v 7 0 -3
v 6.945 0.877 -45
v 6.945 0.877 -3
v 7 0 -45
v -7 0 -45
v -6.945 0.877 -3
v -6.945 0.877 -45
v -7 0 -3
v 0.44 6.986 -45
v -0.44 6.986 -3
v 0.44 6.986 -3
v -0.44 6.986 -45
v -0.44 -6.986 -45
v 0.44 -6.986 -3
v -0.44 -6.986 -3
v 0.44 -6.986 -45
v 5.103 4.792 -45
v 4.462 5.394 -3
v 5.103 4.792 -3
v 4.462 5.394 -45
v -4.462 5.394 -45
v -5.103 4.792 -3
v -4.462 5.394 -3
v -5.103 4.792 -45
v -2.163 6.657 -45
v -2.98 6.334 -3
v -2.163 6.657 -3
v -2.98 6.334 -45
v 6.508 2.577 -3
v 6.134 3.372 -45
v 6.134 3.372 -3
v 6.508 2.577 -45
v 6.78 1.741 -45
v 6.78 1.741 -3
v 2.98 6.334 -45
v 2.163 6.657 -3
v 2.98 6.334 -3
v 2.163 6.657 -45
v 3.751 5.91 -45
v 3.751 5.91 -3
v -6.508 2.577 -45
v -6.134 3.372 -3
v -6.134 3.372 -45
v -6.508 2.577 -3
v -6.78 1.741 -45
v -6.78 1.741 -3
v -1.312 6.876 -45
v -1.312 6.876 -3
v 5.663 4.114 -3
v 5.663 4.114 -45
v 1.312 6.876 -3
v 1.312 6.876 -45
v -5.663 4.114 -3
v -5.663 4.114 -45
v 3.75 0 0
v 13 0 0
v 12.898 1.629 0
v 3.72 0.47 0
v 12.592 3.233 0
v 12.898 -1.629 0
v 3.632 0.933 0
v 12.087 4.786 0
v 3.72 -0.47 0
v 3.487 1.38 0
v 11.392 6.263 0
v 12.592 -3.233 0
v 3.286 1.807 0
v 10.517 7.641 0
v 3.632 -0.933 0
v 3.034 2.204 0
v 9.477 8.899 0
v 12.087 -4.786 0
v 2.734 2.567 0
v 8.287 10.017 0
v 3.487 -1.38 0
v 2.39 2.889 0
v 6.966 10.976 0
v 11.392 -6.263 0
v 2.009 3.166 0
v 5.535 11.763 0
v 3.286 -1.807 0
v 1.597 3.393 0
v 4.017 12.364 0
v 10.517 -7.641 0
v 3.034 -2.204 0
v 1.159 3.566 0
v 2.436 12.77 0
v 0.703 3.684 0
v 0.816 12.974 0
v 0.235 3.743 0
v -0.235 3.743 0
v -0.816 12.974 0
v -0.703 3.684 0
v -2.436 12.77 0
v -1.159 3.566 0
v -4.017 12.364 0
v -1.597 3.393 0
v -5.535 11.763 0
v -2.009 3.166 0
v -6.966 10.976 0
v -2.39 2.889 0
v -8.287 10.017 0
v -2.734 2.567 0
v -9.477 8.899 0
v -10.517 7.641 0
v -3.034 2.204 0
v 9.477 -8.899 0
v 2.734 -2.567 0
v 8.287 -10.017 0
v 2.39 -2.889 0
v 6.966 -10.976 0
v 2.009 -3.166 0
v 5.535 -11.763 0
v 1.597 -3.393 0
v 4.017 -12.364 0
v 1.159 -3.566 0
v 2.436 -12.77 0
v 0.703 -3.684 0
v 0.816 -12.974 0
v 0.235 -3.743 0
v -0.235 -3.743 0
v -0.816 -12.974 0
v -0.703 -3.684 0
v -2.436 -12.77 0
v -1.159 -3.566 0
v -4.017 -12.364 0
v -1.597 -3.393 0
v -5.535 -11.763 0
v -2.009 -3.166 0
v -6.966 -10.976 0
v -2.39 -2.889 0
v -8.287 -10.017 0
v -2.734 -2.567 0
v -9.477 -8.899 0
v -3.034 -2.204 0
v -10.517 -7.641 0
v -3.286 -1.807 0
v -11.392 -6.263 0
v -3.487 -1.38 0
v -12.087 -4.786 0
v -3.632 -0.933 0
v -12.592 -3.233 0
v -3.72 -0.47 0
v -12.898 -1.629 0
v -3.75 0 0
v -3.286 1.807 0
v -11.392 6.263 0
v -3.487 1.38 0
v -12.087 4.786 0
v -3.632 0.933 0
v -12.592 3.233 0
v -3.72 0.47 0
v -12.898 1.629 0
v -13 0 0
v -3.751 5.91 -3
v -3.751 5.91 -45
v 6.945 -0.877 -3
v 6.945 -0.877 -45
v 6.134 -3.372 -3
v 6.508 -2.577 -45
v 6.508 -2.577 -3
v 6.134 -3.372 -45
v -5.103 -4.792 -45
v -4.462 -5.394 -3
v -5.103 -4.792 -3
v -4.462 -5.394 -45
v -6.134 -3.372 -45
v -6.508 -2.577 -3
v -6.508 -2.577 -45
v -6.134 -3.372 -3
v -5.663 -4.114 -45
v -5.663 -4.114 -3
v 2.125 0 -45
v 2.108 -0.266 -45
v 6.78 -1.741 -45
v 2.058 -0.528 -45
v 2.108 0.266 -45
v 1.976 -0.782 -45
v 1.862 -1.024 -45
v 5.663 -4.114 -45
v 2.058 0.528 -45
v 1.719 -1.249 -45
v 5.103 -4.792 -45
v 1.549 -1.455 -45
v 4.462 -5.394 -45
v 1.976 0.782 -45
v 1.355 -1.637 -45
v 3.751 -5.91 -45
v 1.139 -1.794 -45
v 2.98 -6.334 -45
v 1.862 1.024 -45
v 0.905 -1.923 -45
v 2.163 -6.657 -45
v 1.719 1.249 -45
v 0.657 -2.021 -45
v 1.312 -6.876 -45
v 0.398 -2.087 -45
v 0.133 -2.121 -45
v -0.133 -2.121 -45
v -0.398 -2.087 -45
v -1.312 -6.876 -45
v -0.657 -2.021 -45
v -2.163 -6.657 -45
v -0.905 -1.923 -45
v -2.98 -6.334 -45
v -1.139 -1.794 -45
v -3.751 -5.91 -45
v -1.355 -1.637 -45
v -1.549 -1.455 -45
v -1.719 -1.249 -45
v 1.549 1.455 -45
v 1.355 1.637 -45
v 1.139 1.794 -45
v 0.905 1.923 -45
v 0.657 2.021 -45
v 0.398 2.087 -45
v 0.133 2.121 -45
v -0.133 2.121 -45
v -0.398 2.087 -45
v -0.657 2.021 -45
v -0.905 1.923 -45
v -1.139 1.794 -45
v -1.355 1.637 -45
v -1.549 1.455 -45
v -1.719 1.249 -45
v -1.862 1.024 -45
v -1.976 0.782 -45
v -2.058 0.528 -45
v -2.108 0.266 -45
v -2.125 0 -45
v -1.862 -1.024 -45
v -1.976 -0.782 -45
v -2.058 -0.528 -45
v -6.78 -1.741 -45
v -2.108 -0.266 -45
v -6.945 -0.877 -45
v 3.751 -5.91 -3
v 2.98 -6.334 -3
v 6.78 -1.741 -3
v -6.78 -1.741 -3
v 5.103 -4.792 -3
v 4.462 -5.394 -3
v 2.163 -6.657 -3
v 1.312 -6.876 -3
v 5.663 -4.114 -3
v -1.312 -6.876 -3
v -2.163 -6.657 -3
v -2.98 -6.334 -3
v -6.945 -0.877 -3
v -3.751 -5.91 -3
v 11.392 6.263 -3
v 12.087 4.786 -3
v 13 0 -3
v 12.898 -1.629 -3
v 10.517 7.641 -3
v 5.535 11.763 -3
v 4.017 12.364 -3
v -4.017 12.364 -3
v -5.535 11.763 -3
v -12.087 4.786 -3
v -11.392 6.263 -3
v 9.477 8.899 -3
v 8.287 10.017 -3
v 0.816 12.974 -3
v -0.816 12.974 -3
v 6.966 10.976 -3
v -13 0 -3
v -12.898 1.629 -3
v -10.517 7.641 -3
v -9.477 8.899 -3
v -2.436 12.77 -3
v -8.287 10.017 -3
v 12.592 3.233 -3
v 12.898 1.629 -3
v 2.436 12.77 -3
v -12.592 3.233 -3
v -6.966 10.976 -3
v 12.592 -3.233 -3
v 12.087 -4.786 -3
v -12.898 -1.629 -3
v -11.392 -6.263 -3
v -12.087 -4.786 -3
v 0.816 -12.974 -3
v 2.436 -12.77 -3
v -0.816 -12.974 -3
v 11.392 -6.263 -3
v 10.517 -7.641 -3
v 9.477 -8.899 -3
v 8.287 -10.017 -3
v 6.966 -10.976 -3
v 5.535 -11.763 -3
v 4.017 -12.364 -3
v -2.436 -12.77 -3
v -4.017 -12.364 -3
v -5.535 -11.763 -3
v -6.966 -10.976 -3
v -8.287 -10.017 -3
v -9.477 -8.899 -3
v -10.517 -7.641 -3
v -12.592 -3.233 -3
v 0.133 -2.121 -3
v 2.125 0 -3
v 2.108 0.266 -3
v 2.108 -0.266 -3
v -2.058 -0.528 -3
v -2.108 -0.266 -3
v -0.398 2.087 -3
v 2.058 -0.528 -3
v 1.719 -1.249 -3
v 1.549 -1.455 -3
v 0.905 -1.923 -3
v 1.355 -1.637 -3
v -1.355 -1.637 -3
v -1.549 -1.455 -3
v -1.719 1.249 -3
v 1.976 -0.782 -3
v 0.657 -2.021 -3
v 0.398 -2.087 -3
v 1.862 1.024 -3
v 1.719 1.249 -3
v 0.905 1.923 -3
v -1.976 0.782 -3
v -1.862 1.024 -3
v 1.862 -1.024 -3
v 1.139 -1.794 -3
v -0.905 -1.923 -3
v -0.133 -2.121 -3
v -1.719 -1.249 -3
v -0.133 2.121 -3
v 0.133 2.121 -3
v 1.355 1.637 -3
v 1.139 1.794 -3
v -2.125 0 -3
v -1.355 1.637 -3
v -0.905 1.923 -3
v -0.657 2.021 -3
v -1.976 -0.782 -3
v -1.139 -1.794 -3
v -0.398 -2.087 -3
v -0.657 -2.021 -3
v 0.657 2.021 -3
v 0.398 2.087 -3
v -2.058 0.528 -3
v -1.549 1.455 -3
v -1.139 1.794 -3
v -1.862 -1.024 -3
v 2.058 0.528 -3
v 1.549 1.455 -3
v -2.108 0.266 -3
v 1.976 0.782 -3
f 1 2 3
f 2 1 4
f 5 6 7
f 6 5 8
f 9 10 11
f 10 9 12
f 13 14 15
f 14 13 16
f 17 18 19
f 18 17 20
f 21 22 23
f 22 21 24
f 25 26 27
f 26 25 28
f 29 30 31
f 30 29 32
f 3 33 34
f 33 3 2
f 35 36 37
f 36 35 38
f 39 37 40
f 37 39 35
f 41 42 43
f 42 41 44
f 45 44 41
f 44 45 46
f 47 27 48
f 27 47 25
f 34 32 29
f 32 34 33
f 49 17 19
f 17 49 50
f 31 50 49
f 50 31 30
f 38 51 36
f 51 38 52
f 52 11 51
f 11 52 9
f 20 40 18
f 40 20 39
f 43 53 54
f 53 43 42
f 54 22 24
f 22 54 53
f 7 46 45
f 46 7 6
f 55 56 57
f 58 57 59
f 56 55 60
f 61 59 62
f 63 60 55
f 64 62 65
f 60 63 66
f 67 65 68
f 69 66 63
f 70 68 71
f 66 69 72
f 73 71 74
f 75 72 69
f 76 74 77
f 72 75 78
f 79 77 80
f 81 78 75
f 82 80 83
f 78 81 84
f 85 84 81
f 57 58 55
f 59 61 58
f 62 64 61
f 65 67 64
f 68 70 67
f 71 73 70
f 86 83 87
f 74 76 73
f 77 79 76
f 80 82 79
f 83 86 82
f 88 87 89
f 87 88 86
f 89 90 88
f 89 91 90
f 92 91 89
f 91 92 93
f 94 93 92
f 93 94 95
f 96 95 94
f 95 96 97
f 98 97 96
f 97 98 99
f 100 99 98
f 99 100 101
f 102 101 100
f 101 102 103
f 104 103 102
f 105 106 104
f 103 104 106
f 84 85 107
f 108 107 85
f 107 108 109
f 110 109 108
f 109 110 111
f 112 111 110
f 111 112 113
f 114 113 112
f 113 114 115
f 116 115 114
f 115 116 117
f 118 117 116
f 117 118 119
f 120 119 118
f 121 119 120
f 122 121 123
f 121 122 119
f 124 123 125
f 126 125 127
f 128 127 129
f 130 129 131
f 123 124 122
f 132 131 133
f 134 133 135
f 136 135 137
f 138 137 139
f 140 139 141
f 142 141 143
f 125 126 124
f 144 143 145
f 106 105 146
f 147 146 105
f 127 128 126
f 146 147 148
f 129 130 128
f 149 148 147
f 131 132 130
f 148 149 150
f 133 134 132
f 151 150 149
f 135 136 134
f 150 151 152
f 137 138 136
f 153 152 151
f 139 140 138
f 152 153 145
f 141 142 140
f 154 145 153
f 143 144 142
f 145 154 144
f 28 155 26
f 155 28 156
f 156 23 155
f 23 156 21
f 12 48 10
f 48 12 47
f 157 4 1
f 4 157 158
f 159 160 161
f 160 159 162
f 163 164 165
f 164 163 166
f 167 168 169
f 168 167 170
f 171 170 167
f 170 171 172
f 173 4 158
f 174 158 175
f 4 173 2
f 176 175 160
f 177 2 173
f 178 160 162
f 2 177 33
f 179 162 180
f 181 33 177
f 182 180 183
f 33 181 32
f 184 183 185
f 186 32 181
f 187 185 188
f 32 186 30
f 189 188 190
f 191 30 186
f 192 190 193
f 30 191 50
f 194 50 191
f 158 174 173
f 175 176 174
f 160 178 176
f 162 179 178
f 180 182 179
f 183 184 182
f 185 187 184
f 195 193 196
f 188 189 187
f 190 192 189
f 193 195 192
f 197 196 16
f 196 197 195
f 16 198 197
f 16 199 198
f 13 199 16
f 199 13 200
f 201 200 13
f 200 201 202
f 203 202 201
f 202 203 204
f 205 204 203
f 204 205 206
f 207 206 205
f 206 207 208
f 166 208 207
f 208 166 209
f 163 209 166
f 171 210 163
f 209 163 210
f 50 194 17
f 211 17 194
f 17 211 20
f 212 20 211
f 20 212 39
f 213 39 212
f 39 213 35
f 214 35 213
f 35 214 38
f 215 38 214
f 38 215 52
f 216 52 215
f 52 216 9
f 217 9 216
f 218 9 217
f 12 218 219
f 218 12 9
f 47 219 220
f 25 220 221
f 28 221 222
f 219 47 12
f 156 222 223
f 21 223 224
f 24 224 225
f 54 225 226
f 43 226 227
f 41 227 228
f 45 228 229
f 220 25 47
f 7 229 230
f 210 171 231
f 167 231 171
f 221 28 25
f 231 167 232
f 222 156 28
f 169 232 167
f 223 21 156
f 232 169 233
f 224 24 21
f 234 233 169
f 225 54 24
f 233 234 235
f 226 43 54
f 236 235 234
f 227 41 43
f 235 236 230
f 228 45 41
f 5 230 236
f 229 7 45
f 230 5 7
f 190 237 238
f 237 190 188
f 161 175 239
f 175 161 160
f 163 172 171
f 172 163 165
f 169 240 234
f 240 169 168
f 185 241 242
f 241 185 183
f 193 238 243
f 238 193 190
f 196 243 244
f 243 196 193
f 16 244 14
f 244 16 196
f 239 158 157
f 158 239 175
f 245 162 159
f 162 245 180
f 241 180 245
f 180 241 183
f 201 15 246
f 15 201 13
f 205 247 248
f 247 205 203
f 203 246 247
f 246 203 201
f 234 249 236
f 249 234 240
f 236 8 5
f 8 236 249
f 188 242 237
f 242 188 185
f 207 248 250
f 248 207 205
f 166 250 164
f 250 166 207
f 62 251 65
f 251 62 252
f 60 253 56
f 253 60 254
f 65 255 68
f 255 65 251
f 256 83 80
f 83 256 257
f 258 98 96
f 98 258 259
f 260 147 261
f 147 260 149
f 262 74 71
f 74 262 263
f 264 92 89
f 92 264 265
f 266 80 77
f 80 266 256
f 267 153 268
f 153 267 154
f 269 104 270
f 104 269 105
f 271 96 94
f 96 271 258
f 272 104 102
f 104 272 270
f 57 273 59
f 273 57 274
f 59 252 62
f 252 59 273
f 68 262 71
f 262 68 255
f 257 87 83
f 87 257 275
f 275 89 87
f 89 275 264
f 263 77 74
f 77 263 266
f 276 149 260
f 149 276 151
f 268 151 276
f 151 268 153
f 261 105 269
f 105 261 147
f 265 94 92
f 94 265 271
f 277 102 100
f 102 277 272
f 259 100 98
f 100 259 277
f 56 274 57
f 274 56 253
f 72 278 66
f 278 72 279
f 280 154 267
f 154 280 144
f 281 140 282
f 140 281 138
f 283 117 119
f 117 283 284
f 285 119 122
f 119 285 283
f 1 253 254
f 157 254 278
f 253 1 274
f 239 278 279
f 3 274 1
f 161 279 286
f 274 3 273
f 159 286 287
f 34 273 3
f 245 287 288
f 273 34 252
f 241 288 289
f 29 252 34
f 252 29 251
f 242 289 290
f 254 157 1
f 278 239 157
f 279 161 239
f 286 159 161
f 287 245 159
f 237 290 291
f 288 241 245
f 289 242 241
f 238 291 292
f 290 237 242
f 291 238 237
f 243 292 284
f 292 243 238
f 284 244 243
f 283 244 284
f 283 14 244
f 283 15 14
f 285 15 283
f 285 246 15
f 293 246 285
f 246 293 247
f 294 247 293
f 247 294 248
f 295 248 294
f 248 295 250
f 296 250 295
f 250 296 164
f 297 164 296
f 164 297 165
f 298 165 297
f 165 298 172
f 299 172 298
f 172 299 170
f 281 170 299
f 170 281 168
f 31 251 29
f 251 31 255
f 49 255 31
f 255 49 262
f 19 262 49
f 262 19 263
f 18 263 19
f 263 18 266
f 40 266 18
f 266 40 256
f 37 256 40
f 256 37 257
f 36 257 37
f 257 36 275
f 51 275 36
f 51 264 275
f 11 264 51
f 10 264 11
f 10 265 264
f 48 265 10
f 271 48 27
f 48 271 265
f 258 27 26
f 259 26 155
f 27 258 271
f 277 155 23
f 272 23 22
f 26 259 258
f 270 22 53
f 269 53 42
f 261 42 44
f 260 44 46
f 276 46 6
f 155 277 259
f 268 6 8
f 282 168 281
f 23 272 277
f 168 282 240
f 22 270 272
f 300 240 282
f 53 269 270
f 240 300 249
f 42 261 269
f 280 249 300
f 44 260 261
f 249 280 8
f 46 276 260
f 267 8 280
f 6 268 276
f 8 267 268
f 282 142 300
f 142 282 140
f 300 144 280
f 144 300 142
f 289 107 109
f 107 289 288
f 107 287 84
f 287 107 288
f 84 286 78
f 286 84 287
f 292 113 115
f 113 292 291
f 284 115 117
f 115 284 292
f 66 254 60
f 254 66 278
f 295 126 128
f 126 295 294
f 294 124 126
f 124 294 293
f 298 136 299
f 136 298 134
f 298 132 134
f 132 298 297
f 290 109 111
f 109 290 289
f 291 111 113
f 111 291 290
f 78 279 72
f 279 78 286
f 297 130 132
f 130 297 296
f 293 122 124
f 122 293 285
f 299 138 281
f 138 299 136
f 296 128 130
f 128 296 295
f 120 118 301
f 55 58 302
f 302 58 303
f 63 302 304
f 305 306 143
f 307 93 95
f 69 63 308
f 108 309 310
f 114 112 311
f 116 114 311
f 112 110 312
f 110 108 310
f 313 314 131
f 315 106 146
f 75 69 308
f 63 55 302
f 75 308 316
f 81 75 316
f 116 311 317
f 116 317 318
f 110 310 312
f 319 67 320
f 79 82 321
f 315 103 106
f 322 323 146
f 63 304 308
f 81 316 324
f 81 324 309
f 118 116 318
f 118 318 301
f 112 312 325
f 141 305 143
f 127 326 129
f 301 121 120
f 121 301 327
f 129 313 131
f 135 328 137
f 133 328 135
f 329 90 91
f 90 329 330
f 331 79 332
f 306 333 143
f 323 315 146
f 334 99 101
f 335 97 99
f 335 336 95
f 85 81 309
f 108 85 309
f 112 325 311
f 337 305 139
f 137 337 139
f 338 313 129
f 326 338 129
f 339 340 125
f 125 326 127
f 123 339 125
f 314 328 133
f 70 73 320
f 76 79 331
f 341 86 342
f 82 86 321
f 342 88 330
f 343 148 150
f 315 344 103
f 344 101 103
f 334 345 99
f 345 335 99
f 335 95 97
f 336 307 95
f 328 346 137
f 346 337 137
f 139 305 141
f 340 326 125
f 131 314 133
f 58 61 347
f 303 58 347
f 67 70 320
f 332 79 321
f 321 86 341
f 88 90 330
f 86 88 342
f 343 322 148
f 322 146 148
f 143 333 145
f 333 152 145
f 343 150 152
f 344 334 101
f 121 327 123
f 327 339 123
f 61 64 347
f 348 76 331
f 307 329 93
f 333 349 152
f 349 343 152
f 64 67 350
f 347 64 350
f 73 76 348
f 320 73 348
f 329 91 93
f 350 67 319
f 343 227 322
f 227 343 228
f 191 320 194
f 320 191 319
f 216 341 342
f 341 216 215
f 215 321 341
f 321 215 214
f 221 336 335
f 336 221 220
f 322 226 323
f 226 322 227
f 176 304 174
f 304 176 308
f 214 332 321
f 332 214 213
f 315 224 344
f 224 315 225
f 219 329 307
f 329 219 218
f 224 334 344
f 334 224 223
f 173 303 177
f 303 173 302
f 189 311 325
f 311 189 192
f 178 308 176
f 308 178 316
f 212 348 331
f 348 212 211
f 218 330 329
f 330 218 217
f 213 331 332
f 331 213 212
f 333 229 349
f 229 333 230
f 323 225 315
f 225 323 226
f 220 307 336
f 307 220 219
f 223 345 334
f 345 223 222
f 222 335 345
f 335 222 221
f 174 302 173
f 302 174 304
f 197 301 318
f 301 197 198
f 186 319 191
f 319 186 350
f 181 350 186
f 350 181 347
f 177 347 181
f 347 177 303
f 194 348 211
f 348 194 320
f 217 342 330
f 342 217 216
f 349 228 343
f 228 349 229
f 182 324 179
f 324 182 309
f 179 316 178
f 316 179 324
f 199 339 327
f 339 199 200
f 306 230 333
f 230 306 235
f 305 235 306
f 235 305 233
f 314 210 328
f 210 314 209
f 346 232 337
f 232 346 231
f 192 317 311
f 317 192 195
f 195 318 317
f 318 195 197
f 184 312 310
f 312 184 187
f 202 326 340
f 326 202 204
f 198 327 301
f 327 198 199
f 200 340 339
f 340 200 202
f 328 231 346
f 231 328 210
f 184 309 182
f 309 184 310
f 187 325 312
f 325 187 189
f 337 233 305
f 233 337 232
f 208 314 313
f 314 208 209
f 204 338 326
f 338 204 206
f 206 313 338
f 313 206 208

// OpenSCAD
$fn = 50;


difference() {
	union() {
		translate(v = [0, 0, -45.0000000000]) {
			cylinder(h = 45, r = 7.0000000000);
		}
		translate(v = [0, 0, -3.0000000000]) {
			cylinder(h = 3, r = 13.0000000000);
		}
	}
	union() {
		translate(v = [0, 0, 0]) {
			rotate(a = [0, 0, 0]) {
				difference() {
					union() {
						#translate(v = [0, 0, -45.0000000000]) {
							cylinder(h = 45, r = 2.0000000000);
						}
						#translate(v = [0, 0, -3]) {
							cylinder(h = 3, r1 = 2.1250000000, r2 = 3.7500000000);
						}
						#translate(v = [0, 0, -45.0000000000]) {
							cylinder(h = 45, r = 2.1250000000);
						}
						#translate(v = [0, 0, -45.0000000000]) {
							cylinder(h = 45, r = 2.0000000000);
						}
					}
					union();
				}
			}
		}
	}
}
